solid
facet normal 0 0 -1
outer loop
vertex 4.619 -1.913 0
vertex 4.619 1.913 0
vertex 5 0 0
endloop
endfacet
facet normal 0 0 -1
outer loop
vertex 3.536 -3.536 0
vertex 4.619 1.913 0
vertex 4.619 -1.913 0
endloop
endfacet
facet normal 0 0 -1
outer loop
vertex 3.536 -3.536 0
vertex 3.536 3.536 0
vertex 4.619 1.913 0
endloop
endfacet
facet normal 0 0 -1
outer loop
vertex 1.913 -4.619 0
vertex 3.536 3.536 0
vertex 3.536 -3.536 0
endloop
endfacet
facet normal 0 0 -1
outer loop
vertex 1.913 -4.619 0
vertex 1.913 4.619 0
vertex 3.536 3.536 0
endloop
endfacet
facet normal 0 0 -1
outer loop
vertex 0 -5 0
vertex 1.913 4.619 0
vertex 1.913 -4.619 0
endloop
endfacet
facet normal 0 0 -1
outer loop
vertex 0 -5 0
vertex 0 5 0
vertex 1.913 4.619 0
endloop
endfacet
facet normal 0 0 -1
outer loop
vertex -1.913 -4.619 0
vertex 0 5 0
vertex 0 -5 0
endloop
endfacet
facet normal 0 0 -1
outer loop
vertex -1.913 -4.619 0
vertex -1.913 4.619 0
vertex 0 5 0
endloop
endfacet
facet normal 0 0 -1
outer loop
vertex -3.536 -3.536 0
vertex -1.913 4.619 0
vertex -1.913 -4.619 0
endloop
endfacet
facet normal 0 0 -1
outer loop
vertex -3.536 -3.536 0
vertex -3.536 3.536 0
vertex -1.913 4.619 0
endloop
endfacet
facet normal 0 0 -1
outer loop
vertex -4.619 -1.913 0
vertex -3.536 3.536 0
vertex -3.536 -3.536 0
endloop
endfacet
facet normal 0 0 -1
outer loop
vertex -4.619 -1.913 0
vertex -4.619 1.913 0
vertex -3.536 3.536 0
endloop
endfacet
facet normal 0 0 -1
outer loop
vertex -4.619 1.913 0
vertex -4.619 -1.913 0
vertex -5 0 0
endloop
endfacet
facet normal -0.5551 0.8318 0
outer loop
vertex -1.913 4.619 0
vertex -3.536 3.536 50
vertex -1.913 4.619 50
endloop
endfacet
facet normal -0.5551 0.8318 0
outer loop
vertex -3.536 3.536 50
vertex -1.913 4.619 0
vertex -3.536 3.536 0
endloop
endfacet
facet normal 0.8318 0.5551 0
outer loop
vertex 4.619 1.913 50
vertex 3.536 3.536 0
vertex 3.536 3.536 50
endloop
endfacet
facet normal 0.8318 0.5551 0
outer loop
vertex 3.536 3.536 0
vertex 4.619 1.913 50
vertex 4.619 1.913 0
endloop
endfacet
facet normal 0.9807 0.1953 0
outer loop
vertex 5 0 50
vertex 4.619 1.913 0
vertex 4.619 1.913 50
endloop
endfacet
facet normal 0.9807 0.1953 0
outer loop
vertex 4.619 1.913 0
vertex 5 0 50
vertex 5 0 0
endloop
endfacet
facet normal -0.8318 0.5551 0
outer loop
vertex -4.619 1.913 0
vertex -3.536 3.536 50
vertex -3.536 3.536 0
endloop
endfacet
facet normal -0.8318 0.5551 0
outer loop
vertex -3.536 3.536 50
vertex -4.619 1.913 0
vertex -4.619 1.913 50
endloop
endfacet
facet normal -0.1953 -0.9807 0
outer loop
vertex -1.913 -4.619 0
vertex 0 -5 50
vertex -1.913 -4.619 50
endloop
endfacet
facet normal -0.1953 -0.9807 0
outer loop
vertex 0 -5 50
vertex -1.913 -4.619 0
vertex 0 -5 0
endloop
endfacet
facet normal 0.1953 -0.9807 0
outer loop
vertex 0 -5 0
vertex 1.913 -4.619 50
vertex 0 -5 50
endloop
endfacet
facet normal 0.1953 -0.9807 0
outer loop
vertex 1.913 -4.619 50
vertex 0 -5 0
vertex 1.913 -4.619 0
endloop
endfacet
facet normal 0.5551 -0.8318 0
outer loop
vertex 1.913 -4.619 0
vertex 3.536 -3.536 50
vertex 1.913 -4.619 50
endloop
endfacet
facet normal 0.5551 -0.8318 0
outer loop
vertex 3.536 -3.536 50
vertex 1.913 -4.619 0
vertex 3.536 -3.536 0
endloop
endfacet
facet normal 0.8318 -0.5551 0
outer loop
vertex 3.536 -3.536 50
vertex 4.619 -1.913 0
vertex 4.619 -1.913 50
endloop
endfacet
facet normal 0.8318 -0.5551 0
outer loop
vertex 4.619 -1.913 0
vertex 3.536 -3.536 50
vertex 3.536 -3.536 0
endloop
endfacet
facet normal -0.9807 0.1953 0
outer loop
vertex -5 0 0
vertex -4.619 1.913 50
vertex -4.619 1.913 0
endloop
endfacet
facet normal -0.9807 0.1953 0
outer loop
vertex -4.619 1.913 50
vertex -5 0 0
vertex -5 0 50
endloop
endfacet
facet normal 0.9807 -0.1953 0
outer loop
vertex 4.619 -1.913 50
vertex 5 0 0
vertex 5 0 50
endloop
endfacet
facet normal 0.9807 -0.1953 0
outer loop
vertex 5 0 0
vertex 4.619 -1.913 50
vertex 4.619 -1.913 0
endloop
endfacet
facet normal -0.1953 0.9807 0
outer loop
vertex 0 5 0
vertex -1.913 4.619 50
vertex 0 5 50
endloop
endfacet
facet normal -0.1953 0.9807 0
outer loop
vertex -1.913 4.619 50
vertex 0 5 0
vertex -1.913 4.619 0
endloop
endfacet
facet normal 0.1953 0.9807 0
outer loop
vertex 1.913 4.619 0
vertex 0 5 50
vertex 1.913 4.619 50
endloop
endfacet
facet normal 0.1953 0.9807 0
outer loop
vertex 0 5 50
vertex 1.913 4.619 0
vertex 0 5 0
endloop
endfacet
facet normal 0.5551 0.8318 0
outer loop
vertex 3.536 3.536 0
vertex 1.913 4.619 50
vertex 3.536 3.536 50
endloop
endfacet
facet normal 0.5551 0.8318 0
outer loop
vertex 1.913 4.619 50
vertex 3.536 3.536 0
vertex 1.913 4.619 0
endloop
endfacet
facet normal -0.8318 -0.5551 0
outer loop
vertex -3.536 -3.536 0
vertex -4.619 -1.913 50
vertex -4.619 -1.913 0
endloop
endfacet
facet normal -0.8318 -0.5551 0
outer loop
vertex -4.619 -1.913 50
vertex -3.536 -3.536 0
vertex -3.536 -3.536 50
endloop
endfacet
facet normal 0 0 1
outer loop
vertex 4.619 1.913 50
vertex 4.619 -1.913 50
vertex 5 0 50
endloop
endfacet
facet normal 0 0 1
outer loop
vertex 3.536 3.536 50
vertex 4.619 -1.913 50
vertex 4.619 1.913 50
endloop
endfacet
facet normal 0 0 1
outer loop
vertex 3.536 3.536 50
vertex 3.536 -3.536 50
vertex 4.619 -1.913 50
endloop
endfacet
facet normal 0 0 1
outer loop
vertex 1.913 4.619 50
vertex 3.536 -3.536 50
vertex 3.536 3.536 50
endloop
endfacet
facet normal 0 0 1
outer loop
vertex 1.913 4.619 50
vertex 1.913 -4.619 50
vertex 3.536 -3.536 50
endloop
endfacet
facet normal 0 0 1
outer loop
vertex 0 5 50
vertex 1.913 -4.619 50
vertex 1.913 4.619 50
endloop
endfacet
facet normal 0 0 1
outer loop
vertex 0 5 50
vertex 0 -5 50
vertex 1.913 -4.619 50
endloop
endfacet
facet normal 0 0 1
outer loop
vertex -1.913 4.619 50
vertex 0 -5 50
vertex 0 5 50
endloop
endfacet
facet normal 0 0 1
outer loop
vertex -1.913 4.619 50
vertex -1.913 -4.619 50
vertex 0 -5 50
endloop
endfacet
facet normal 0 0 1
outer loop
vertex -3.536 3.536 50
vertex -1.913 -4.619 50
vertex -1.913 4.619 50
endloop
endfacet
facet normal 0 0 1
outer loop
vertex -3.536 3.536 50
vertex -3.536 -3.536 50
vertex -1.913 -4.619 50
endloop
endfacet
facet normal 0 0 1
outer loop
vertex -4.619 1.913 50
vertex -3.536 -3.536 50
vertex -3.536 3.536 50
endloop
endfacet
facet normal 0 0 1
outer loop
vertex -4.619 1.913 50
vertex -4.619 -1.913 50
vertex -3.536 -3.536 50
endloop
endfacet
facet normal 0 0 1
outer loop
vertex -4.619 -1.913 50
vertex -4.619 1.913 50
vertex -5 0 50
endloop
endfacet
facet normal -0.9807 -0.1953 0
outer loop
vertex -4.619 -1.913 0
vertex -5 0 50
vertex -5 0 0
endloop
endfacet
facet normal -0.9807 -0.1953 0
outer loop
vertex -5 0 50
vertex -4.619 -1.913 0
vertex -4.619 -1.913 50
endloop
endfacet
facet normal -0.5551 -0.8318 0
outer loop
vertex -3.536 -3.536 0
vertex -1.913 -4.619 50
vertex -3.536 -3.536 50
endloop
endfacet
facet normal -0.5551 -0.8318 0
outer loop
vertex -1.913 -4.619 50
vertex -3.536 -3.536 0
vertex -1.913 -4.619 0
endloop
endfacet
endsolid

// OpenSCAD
// Tree parameters
trunk_height = 50;
trunk_radius = 5;
branch_angle = 45;
branch_length = 20;
branch_radius_scale = 0.8;
branch_count = 8;

module trunk() {
  cylinder(h = trunk_height, r = trunk_radius);
}

module branch() {
  difference() {
    cylinder(h = branch_length, r = branch_radius_scale * trunk_radius);
    for (i = [0:branch_count-1]) {
      rotate([0, 0, i * 360 / branch_count]) {
        translate([0, 0, -branch_length * 0.5]) {
          cube([1, 0.1, 1], center = true);
        }
      }
    }
  }
}

module tree() {
  trunk();

  for (i = [0:branch_count-1]) {
    branch();
  }
}

tree();
